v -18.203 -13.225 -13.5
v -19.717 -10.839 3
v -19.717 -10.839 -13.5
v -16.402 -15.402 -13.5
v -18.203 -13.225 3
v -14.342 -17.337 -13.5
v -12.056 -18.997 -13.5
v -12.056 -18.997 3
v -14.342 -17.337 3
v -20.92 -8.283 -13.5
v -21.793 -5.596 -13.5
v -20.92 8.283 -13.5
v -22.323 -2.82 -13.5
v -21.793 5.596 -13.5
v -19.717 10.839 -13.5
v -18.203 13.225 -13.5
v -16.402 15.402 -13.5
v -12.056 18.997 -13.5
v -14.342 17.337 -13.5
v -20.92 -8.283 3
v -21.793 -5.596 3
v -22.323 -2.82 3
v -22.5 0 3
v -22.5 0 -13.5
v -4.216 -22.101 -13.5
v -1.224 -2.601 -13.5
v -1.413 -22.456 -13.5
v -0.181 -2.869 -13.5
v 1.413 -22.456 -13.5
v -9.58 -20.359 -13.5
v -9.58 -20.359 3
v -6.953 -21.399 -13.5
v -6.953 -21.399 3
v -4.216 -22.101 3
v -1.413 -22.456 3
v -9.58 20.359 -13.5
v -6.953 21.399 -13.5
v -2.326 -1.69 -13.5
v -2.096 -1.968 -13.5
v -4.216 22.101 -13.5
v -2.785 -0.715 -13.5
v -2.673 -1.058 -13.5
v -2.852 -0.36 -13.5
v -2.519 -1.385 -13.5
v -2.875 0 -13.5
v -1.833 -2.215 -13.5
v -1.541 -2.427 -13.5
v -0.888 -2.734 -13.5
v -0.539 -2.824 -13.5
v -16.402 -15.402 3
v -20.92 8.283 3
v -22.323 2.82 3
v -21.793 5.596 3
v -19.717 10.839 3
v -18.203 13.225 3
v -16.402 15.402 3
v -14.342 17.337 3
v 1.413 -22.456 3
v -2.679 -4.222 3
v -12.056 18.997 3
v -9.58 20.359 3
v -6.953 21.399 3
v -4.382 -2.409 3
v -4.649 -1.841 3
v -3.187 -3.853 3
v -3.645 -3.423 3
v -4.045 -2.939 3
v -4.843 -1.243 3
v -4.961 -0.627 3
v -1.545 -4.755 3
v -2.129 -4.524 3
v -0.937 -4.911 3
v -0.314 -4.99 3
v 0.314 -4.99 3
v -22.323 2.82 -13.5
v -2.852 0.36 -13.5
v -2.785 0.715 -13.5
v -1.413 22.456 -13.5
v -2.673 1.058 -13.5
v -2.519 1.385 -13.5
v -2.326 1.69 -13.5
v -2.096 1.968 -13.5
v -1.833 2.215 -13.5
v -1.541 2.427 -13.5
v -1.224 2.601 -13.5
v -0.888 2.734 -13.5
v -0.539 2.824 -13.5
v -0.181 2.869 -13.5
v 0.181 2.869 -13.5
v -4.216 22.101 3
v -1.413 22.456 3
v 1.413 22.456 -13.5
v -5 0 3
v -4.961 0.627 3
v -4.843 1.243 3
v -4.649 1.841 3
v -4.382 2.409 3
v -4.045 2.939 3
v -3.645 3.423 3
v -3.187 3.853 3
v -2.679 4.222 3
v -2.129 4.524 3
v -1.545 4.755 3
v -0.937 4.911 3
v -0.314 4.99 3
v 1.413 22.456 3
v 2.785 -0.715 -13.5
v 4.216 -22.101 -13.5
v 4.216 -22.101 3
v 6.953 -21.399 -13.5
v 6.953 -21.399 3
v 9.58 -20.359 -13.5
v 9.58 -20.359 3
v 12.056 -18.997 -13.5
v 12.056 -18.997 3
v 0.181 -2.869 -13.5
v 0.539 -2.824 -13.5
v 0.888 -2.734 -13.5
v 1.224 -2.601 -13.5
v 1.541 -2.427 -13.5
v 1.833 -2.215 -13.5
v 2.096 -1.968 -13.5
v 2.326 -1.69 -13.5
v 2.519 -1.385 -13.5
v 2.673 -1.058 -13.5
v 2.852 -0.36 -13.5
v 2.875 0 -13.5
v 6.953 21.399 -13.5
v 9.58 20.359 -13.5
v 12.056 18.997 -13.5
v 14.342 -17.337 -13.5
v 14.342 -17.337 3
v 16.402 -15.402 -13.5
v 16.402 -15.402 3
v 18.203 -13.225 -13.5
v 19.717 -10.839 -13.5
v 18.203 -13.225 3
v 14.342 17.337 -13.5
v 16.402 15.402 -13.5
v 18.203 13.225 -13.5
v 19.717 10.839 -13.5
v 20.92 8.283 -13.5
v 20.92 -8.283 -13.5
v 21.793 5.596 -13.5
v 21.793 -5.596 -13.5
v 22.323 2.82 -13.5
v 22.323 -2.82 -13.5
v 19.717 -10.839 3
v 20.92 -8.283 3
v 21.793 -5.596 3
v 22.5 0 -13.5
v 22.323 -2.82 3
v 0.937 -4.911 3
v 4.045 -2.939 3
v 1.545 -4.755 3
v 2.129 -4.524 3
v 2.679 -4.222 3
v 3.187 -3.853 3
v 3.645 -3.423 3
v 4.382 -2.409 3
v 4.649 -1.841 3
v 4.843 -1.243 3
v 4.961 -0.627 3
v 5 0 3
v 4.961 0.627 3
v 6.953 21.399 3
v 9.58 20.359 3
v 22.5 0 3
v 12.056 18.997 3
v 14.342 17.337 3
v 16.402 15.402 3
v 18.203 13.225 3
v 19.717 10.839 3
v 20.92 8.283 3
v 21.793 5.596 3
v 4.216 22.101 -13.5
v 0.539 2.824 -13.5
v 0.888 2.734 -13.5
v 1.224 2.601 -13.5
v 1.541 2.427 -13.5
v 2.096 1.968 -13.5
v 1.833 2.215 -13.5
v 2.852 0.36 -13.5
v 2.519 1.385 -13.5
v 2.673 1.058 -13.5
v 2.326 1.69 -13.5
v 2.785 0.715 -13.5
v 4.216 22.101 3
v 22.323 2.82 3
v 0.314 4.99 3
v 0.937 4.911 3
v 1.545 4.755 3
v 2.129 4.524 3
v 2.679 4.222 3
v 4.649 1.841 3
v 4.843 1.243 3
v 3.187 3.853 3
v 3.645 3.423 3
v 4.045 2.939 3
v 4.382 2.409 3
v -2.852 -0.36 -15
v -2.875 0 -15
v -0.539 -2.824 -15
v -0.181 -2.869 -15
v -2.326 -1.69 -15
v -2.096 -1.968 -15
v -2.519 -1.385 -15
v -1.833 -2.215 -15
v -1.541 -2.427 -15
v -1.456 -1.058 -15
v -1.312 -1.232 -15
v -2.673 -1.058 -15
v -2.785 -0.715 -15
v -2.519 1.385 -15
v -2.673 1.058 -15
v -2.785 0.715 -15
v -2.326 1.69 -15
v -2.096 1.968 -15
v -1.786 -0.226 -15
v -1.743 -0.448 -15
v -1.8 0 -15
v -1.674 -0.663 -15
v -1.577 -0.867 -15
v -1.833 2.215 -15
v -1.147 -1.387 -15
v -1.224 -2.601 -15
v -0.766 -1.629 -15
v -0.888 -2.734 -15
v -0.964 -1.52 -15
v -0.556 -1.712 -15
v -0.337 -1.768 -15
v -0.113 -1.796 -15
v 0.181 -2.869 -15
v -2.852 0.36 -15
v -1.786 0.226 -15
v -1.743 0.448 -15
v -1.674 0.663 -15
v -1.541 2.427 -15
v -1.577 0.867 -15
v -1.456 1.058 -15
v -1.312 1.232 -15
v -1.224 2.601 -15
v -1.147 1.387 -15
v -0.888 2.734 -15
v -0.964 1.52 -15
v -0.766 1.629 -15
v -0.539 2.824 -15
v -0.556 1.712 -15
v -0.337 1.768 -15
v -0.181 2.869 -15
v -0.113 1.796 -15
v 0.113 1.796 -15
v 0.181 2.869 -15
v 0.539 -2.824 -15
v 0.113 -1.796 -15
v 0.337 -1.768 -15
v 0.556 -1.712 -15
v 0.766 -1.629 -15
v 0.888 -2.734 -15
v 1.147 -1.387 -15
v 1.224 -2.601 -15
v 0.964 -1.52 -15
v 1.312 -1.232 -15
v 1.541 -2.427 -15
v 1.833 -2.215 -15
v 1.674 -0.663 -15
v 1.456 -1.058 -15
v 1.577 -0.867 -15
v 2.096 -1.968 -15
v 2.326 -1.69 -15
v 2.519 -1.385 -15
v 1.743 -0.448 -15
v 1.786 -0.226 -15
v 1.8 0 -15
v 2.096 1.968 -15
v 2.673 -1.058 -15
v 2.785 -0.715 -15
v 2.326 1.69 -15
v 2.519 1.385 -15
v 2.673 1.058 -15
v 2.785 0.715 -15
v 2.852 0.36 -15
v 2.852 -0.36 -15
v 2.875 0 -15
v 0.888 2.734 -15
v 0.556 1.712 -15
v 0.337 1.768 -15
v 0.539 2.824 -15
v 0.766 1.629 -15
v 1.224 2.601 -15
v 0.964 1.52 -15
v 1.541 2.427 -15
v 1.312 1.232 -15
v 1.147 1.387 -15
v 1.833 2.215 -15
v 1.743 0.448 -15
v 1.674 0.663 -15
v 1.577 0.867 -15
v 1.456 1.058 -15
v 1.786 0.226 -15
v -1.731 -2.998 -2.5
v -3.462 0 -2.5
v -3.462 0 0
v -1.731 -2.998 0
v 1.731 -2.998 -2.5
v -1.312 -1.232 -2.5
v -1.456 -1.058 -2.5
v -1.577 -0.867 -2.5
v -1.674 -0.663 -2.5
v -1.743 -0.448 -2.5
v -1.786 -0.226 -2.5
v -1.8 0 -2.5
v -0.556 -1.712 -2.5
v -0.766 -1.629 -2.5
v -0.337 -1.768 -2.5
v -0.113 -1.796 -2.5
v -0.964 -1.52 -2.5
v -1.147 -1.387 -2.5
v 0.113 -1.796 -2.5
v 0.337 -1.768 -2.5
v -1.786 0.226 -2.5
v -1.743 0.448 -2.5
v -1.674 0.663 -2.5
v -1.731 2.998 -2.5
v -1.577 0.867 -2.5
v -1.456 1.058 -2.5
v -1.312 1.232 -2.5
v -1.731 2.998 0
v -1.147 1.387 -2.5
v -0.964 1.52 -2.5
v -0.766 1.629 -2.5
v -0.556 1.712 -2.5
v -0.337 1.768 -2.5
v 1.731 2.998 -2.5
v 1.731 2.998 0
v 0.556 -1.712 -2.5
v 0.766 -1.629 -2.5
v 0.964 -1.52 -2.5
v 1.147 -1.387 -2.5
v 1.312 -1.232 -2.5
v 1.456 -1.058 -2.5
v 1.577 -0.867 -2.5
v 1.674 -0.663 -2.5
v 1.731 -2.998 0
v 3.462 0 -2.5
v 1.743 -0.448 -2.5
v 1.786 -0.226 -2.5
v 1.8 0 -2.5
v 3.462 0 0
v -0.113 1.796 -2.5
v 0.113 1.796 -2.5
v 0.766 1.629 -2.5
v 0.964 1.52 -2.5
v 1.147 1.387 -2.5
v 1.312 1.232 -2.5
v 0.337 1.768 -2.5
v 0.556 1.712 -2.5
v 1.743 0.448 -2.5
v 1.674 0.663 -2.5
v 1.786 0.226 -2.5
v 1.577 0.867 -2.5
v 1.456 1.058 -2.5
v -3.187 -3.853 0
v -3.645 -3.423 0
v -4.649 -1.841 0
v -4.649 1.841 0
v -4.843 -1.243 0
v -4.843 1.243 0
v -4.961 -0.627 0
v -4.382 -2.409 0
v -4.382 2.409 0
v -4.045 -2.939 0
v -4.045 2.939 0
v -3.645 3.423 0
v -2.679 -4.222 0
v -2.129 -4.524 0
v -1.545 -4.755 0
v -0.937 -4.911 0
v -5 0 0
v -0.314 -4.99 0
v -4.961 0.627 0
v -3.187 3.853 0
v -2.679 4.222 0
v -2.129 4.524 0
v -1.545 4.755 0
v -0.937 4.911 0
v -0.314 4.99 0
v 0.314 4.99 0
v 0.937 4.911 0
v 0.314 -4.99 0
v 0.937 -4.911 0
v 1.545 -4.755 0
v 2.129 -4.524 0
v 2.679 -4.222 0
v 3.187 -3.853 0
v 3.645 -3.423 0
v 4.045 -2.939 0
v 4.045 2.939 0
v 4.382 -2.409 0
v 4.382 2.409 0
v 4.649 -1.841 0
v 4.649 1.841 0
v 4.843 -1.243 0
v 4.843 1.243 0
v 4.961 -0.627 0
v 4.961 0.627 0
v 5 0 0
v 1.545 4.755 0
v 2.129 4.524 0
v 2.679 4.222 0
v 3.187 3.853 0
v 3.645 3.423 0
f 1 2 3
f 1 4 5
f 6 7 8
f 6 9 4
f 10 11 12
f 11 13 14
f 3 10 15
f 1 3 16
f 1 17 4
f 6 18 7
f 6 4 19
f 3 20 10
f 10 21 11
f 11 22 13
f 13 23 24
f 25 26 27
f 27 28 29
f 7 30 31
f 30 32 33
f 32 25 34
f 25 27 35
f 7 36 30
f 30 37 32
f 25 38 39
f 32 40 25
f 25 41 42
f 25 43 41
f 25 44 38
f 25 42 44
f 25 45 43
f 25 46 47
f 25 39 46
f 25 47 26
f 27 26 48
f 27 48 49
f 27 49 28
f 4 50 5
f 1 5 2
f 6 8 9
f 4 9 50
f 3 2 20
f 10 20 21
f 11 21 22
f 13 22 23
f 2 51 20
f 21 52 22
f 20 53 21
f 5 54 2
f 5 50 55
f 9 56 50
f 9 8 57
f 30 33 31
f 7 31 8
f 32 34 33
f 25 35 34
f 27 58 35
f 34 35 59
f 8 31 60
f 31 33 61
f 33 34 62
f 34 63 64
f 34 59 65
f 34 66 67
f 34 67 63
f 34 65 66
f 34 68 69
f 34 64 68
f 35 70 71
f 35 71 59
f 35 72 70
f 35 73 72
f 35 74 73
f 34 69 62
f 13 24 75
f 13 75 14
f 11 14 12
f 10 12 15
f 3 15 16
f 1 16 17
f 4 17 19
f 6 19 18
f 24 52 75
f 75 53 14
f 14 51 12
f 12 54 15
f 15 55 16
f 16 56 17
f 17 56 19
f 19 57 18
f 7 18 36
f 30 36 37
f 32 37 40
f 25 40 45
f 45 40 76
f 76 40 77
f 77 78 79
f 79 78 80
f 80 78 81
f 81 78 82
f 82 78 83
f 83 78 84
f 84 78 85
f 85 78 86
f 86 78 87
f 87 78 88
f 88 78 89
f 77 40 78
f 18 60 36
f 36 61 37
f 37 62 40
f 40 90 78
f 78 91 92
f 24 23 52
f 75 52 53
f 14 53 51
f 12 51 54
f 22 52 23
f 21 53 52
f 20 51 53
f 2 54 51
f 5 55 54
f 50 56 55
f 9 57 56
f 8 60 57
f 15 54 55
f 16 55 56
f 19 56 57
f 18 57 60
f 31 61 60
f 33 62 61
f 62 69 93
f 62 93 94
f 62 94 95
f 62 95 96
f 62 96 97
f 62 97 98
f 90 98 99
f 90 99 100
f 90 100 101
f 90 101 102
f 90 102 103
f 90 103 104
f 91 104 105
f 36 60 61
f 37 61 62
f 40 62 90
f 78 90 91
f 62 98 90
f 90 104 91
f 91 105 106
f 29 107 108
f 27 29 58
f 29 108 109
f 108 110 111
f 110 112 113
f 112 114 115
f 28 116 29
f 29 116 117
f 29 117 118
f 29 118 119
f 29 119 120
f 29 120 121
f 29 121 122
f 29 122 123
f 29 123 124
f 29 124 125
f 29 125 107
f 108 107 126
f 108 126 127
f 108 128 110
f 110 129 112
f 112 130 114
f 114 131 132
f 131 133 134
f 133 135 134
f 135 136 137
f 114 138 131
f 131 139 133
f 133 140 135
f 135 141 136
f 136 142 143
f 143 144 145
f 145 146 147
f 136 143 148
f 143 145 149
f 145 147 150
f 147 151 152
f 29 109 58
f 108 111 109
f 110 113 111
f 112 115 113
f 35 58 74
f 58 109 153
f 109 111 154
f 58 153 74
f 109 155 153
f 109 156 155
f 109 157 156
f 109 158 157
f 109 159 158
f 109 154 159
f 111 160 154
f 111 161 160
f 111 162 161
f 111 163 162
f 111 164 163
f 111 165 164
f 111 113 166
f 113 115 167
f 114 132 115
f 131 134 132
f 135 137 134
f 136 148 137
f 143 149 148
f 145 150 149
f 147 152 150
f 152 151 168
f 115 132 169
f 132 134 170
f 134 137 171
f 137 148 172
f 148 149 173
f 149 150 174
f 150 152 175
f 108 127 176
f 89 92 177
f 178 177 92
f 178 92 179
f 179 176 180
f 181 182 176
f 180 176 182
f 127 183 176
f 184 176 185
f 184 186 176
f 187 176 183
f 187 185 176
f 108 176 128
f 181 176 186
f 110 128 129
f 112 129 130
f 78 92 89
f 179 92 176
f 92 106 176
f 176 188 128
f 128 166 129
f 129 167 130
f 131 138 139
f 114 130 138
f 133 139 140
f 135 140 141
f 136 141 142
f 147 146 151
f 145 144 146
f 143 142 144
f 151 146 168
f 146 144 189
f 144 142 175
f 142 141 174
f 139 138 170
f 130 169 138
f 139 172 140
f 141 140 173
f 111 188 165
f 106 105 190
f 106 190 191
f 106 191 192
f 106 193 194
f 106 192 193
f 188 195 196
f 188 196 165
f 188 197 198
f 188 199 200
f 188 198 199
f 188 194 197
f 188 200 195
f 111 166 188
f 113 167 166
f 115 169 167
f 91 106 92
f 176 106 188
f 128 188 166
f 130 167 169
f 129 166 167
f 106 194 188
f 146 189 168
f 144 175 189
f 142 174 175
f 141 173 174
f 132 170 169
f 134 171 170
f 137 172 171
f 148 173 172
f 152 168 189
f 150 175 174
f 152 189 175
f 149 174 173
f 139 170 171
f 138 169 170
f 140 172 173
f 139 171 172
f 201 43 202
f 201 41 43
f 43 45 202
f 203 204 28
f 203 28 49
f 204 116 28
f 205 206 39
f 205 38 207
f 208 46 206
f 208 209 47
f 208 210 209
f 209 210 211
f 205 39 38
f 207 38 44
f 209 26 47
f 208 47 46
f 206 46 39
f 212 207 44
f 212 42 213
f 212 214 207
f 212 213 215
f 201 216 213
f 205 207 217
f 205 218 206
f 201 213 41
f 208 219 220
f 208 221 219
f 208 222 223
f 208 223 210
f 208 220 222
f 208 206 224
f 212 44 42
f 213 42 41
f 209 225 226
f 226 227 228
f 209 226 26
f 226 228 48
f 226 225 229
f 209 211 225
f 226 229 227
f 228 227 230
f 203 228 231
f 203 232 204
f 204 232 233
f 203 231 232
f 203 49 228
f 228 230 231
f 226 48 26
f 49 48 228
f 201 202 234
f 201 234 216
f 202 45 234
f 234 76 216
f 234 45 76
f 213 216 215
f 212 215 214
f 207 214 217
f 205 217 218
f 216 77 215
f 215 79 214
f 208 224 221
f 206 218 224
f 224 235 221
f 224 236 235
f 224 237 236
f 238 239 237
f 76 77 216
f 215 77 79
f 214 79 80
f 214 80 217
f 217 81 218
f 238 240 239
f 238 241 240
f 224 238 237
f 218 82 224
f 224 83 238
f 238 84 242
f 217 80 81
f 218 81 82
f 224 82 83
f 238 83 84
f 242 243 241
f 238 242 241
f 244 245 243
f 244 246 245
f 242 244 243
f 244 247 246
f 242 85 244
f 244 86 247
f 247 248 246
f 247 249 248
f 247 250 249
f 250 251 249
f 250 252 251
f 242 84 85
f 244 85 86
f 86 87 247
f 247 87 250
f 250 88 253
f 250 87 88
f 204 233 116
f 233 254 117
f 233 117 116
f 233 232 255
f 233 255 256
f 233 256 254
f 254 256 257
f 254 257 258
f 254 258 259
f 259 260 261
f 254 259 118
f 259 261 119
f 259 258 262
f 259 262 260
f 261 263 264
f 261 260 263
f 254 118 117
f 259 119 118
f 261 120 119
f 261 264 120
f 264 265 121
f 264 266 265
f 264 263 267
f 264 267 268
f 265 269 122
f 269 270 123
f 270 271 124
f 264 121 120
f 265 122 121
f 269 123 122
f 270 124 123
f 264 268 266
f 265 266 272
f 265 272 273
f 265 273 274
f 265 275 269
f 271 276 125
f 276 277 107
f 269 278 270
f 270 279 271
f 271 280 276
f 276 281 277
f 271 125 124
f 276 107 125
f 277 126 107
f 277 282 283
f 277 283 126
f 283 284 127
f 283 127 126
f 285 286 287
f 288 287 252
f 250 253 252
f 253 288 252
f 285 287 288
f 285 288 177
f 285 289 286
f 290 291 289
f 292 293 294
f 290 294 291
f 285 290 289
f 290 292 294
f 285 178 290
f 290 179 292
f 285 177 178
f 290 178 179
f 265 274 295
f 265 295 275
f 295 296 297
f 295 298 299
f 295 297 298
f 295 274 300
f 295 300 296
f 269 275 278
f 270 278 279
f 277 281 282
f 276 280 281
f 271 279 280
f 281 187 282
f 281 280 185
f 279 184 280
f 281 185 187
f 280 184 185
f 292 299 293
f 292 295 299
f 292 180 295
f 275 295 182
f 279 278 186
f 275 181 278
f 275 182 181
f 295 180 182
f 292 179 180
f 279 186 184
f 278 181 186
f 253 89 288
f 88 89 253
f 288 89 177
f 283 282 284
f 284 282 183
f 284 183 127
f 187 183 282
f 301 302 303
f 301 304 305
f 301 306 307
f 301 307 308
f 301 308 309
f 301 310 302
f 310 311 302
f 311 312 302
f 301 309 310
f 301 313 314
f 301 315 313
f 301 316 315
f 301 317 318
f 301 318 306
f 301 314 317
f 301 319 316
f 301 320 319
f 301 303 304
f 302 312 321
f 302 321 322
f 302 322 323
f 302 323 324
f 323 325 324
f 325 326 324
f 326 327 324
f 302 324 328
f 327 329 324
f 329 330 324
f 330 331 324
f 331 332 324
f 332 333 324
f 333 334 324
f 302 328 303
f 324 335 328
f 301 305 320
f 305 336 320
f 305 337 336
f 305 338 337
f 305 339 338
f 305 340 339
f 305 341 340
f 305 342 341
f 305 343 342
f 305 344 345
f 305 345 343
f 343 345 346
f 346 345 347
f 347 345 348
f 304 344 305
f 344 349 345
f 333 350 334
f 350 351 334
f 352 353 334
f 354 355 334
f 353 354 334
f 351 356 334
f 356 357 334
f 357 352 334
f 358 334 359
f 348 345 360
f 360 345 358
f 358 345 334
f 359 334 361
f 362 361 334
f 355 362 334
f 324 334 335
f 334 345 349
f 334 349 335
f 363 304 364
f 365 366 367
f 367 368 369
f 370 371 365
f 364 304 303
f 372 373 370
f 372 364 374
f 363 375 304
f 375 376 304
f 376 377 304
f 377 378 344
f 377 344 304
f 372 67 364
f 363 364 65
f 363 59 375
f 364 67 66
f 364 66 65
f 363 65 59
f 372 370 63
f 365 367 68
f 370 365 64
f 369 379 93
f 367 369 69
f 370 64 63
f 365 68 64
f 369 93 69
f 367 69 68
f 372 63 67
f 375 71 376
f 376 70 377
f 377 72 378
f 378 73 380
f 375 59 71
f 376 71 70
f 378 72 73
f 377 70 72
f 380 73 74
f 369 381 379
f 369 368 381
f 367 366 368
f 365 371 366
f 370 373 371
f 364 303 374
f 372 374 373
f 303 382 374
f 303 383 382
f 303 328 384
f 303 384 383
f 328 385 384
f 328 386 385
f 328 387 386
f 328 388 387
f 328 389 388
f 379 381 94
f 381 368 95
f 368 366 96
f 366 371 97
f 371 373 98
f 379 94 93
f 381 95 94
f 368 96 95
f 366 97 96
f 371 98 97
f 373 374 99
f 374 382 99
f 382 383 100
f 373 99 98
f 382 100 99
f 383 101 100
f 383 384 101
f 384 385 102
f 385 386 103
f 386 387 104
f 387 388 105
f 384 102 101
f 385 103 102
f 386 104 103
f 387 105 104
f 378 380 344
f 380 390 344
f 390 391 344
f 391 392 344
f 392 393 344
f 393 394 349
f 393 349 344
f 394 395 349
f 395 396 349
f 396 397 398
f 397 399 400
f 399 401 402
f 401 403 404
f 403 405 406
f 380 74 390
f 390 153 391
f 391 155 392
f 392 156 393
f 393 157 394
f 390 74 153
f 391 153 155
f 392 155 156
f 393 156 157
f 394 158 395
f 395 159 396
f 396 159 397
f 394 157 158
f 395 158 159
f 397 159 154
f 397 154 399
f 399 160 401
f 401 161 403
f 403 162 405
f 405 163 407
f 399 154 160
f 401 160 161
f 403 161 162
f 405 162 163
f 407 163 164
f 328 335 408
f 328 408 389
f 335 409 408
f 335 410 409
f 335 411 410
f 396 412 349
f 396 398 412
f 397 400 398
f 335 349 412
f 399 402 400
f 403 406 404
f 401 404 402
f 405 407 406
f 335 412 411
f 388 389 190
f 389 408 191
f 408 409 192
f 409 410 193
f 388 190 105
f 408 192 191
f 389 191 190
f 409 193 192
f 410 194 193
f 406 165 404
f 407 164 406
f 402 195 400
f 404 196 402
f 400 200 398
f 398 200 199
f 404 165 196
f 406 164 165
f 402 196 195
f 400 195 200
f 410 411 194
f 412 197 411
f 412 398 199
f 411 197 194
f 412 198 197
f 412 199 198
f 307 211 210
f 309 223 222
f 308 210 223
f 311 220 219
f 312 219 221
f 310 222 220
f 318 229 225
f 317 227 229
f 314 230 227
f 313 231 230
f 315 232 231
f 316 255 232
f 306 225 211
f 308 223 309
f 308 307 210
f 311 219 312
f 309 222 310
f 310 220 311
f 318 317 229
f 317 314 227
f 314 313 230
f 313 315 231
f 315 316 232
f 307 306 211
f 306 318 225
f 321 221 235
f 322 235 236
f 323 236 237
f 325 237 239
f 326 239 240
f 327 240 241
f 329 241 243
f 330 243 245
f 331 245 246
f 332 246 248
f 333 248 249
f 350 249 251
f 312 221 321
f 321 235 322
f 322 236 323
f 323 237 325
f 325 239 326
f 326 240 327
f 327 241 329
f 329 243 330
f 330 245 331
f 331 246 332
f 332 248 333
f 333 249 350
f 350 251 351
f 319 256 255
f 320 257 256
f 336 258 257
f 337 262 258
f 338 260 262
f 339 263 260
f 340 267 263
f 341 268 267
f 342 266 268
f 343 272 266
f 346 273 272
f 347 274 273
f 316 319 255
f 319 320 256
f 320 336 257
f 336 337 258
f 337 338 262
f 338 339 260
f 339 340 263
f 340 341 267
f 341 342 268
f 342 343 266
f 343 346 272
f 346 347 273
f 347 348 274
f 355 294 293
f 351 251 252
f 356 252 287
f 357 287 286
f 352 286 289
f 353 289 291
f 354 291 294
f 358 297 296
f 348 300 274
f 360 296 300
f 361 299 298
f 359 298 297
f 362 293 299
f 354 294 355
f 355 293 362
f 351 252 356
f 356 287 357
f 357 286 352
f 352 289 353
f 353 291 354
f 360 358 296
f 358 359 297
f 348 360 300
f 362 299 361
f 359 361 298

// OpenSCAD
$fn = 50;

difference() {
	union() {
		translate(v = [0, 0, -13.5]) {
			cylinder(h = 16.5, r = 22.5);
		}
		#translate(v = [0, 0, -15.0]) {
			cylinder(h = 15, r = 2.875);
		}
	}
	union() {
		translate(v = [0, 0, 0]) {
			rotate(a = [0, 0, 0]) {
				difference() {
					union() {
						translate(v = [0, 0, -2.5]) {
							linear_extrude(height = 2.5) {
								polygon(points = [[3.4619999999999997, 0.0], [1.7310000000000003, 2.9981799479017264], [-1.7309999999999992, 2.9981799479017264], [-3.4619999999999997, 4.2397272186481365e-16], [-1.7310000000000014, -2.998179947901726], [1.7309999999999977, -2.9981799479017277]]);
							}
						}
					}
					union();
				}
			}
		}
		#cylinder(h = 3, r = 5.0);
		#translate(v = [0, 0, -100.0]) {
			cylinder(h = 200, r = 1.8);
		}
	}
}
